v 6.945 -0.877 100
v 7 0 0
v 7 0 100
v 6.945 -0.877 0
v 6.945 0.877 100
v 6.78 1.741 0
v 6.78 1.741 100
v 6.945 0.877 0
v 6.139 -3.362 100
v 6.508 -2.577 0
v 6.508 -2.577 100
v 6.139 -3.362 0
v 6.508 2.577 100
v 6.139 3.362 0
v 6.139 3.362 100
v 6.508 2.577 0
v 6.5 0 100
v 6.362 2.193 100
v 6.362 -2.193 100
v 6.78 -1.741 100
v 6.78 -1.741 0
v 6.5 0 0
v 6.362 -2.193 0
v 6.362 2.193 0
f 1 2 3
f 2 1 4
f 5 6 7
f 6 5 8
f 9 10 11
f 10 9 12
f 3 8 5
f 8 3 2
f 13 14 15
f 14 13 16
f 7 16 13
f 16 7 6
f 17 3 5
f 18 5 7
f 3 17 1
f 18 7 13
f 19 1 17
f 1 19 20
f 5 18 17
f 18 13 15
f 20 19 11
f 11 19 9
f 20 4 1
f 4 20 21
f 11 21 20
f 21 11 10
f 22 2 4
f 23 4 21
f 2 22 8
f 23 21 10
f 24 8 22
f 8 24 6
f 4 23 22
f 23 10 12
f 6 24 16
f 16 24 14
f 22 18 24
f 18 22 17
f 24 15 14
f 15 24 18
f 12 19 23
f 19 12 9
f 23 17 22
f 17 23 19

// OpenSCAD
$fn = 50;


difference() {
	union() {
		cylinder(h = 100, r = 7.0000000000);
		translate(v = [-14.0000000000, 0, 0]) {
			cylinder(h = 100, r = 7.0000000000);
		}
	}
	union() {
		cylinder(h = 100, r = 3.2500000000);
		cylinder(h = 100, r = 1.8000000000);
		cylinder(h = 100, r = 1.8000000000);
		cylinder(h = 100, r = 1.8000000000);
		translate(v = [-18.5000000000, 0, 0]) {
			hull() {
				translate(v = [-3.7500000000, 0.0000000000, 0]) {
					cylinder(h = 100, r = 7.5000000000);
				}
				translate(v = [3.7500000000, 0.0000000000, 0]) {
					cylinder(h = 100, r = 7.5000000000);
				}
				translate(v = [-3.7500000000, -0.0000000000, 0]) {
					cylinder(h = 100, r = 7.5000000000);
				}
				translate(v = [3.7500000000, -0.0000000000, 0]) {
					cylinder(h = 100, r = 7.5000000000);
				}
			}
		}
		translate(v = [-11.0000000000, 0, 0.0000000000]) {
			cylinder(h = 100, r = 17.5000000000);
		}
	}
}
